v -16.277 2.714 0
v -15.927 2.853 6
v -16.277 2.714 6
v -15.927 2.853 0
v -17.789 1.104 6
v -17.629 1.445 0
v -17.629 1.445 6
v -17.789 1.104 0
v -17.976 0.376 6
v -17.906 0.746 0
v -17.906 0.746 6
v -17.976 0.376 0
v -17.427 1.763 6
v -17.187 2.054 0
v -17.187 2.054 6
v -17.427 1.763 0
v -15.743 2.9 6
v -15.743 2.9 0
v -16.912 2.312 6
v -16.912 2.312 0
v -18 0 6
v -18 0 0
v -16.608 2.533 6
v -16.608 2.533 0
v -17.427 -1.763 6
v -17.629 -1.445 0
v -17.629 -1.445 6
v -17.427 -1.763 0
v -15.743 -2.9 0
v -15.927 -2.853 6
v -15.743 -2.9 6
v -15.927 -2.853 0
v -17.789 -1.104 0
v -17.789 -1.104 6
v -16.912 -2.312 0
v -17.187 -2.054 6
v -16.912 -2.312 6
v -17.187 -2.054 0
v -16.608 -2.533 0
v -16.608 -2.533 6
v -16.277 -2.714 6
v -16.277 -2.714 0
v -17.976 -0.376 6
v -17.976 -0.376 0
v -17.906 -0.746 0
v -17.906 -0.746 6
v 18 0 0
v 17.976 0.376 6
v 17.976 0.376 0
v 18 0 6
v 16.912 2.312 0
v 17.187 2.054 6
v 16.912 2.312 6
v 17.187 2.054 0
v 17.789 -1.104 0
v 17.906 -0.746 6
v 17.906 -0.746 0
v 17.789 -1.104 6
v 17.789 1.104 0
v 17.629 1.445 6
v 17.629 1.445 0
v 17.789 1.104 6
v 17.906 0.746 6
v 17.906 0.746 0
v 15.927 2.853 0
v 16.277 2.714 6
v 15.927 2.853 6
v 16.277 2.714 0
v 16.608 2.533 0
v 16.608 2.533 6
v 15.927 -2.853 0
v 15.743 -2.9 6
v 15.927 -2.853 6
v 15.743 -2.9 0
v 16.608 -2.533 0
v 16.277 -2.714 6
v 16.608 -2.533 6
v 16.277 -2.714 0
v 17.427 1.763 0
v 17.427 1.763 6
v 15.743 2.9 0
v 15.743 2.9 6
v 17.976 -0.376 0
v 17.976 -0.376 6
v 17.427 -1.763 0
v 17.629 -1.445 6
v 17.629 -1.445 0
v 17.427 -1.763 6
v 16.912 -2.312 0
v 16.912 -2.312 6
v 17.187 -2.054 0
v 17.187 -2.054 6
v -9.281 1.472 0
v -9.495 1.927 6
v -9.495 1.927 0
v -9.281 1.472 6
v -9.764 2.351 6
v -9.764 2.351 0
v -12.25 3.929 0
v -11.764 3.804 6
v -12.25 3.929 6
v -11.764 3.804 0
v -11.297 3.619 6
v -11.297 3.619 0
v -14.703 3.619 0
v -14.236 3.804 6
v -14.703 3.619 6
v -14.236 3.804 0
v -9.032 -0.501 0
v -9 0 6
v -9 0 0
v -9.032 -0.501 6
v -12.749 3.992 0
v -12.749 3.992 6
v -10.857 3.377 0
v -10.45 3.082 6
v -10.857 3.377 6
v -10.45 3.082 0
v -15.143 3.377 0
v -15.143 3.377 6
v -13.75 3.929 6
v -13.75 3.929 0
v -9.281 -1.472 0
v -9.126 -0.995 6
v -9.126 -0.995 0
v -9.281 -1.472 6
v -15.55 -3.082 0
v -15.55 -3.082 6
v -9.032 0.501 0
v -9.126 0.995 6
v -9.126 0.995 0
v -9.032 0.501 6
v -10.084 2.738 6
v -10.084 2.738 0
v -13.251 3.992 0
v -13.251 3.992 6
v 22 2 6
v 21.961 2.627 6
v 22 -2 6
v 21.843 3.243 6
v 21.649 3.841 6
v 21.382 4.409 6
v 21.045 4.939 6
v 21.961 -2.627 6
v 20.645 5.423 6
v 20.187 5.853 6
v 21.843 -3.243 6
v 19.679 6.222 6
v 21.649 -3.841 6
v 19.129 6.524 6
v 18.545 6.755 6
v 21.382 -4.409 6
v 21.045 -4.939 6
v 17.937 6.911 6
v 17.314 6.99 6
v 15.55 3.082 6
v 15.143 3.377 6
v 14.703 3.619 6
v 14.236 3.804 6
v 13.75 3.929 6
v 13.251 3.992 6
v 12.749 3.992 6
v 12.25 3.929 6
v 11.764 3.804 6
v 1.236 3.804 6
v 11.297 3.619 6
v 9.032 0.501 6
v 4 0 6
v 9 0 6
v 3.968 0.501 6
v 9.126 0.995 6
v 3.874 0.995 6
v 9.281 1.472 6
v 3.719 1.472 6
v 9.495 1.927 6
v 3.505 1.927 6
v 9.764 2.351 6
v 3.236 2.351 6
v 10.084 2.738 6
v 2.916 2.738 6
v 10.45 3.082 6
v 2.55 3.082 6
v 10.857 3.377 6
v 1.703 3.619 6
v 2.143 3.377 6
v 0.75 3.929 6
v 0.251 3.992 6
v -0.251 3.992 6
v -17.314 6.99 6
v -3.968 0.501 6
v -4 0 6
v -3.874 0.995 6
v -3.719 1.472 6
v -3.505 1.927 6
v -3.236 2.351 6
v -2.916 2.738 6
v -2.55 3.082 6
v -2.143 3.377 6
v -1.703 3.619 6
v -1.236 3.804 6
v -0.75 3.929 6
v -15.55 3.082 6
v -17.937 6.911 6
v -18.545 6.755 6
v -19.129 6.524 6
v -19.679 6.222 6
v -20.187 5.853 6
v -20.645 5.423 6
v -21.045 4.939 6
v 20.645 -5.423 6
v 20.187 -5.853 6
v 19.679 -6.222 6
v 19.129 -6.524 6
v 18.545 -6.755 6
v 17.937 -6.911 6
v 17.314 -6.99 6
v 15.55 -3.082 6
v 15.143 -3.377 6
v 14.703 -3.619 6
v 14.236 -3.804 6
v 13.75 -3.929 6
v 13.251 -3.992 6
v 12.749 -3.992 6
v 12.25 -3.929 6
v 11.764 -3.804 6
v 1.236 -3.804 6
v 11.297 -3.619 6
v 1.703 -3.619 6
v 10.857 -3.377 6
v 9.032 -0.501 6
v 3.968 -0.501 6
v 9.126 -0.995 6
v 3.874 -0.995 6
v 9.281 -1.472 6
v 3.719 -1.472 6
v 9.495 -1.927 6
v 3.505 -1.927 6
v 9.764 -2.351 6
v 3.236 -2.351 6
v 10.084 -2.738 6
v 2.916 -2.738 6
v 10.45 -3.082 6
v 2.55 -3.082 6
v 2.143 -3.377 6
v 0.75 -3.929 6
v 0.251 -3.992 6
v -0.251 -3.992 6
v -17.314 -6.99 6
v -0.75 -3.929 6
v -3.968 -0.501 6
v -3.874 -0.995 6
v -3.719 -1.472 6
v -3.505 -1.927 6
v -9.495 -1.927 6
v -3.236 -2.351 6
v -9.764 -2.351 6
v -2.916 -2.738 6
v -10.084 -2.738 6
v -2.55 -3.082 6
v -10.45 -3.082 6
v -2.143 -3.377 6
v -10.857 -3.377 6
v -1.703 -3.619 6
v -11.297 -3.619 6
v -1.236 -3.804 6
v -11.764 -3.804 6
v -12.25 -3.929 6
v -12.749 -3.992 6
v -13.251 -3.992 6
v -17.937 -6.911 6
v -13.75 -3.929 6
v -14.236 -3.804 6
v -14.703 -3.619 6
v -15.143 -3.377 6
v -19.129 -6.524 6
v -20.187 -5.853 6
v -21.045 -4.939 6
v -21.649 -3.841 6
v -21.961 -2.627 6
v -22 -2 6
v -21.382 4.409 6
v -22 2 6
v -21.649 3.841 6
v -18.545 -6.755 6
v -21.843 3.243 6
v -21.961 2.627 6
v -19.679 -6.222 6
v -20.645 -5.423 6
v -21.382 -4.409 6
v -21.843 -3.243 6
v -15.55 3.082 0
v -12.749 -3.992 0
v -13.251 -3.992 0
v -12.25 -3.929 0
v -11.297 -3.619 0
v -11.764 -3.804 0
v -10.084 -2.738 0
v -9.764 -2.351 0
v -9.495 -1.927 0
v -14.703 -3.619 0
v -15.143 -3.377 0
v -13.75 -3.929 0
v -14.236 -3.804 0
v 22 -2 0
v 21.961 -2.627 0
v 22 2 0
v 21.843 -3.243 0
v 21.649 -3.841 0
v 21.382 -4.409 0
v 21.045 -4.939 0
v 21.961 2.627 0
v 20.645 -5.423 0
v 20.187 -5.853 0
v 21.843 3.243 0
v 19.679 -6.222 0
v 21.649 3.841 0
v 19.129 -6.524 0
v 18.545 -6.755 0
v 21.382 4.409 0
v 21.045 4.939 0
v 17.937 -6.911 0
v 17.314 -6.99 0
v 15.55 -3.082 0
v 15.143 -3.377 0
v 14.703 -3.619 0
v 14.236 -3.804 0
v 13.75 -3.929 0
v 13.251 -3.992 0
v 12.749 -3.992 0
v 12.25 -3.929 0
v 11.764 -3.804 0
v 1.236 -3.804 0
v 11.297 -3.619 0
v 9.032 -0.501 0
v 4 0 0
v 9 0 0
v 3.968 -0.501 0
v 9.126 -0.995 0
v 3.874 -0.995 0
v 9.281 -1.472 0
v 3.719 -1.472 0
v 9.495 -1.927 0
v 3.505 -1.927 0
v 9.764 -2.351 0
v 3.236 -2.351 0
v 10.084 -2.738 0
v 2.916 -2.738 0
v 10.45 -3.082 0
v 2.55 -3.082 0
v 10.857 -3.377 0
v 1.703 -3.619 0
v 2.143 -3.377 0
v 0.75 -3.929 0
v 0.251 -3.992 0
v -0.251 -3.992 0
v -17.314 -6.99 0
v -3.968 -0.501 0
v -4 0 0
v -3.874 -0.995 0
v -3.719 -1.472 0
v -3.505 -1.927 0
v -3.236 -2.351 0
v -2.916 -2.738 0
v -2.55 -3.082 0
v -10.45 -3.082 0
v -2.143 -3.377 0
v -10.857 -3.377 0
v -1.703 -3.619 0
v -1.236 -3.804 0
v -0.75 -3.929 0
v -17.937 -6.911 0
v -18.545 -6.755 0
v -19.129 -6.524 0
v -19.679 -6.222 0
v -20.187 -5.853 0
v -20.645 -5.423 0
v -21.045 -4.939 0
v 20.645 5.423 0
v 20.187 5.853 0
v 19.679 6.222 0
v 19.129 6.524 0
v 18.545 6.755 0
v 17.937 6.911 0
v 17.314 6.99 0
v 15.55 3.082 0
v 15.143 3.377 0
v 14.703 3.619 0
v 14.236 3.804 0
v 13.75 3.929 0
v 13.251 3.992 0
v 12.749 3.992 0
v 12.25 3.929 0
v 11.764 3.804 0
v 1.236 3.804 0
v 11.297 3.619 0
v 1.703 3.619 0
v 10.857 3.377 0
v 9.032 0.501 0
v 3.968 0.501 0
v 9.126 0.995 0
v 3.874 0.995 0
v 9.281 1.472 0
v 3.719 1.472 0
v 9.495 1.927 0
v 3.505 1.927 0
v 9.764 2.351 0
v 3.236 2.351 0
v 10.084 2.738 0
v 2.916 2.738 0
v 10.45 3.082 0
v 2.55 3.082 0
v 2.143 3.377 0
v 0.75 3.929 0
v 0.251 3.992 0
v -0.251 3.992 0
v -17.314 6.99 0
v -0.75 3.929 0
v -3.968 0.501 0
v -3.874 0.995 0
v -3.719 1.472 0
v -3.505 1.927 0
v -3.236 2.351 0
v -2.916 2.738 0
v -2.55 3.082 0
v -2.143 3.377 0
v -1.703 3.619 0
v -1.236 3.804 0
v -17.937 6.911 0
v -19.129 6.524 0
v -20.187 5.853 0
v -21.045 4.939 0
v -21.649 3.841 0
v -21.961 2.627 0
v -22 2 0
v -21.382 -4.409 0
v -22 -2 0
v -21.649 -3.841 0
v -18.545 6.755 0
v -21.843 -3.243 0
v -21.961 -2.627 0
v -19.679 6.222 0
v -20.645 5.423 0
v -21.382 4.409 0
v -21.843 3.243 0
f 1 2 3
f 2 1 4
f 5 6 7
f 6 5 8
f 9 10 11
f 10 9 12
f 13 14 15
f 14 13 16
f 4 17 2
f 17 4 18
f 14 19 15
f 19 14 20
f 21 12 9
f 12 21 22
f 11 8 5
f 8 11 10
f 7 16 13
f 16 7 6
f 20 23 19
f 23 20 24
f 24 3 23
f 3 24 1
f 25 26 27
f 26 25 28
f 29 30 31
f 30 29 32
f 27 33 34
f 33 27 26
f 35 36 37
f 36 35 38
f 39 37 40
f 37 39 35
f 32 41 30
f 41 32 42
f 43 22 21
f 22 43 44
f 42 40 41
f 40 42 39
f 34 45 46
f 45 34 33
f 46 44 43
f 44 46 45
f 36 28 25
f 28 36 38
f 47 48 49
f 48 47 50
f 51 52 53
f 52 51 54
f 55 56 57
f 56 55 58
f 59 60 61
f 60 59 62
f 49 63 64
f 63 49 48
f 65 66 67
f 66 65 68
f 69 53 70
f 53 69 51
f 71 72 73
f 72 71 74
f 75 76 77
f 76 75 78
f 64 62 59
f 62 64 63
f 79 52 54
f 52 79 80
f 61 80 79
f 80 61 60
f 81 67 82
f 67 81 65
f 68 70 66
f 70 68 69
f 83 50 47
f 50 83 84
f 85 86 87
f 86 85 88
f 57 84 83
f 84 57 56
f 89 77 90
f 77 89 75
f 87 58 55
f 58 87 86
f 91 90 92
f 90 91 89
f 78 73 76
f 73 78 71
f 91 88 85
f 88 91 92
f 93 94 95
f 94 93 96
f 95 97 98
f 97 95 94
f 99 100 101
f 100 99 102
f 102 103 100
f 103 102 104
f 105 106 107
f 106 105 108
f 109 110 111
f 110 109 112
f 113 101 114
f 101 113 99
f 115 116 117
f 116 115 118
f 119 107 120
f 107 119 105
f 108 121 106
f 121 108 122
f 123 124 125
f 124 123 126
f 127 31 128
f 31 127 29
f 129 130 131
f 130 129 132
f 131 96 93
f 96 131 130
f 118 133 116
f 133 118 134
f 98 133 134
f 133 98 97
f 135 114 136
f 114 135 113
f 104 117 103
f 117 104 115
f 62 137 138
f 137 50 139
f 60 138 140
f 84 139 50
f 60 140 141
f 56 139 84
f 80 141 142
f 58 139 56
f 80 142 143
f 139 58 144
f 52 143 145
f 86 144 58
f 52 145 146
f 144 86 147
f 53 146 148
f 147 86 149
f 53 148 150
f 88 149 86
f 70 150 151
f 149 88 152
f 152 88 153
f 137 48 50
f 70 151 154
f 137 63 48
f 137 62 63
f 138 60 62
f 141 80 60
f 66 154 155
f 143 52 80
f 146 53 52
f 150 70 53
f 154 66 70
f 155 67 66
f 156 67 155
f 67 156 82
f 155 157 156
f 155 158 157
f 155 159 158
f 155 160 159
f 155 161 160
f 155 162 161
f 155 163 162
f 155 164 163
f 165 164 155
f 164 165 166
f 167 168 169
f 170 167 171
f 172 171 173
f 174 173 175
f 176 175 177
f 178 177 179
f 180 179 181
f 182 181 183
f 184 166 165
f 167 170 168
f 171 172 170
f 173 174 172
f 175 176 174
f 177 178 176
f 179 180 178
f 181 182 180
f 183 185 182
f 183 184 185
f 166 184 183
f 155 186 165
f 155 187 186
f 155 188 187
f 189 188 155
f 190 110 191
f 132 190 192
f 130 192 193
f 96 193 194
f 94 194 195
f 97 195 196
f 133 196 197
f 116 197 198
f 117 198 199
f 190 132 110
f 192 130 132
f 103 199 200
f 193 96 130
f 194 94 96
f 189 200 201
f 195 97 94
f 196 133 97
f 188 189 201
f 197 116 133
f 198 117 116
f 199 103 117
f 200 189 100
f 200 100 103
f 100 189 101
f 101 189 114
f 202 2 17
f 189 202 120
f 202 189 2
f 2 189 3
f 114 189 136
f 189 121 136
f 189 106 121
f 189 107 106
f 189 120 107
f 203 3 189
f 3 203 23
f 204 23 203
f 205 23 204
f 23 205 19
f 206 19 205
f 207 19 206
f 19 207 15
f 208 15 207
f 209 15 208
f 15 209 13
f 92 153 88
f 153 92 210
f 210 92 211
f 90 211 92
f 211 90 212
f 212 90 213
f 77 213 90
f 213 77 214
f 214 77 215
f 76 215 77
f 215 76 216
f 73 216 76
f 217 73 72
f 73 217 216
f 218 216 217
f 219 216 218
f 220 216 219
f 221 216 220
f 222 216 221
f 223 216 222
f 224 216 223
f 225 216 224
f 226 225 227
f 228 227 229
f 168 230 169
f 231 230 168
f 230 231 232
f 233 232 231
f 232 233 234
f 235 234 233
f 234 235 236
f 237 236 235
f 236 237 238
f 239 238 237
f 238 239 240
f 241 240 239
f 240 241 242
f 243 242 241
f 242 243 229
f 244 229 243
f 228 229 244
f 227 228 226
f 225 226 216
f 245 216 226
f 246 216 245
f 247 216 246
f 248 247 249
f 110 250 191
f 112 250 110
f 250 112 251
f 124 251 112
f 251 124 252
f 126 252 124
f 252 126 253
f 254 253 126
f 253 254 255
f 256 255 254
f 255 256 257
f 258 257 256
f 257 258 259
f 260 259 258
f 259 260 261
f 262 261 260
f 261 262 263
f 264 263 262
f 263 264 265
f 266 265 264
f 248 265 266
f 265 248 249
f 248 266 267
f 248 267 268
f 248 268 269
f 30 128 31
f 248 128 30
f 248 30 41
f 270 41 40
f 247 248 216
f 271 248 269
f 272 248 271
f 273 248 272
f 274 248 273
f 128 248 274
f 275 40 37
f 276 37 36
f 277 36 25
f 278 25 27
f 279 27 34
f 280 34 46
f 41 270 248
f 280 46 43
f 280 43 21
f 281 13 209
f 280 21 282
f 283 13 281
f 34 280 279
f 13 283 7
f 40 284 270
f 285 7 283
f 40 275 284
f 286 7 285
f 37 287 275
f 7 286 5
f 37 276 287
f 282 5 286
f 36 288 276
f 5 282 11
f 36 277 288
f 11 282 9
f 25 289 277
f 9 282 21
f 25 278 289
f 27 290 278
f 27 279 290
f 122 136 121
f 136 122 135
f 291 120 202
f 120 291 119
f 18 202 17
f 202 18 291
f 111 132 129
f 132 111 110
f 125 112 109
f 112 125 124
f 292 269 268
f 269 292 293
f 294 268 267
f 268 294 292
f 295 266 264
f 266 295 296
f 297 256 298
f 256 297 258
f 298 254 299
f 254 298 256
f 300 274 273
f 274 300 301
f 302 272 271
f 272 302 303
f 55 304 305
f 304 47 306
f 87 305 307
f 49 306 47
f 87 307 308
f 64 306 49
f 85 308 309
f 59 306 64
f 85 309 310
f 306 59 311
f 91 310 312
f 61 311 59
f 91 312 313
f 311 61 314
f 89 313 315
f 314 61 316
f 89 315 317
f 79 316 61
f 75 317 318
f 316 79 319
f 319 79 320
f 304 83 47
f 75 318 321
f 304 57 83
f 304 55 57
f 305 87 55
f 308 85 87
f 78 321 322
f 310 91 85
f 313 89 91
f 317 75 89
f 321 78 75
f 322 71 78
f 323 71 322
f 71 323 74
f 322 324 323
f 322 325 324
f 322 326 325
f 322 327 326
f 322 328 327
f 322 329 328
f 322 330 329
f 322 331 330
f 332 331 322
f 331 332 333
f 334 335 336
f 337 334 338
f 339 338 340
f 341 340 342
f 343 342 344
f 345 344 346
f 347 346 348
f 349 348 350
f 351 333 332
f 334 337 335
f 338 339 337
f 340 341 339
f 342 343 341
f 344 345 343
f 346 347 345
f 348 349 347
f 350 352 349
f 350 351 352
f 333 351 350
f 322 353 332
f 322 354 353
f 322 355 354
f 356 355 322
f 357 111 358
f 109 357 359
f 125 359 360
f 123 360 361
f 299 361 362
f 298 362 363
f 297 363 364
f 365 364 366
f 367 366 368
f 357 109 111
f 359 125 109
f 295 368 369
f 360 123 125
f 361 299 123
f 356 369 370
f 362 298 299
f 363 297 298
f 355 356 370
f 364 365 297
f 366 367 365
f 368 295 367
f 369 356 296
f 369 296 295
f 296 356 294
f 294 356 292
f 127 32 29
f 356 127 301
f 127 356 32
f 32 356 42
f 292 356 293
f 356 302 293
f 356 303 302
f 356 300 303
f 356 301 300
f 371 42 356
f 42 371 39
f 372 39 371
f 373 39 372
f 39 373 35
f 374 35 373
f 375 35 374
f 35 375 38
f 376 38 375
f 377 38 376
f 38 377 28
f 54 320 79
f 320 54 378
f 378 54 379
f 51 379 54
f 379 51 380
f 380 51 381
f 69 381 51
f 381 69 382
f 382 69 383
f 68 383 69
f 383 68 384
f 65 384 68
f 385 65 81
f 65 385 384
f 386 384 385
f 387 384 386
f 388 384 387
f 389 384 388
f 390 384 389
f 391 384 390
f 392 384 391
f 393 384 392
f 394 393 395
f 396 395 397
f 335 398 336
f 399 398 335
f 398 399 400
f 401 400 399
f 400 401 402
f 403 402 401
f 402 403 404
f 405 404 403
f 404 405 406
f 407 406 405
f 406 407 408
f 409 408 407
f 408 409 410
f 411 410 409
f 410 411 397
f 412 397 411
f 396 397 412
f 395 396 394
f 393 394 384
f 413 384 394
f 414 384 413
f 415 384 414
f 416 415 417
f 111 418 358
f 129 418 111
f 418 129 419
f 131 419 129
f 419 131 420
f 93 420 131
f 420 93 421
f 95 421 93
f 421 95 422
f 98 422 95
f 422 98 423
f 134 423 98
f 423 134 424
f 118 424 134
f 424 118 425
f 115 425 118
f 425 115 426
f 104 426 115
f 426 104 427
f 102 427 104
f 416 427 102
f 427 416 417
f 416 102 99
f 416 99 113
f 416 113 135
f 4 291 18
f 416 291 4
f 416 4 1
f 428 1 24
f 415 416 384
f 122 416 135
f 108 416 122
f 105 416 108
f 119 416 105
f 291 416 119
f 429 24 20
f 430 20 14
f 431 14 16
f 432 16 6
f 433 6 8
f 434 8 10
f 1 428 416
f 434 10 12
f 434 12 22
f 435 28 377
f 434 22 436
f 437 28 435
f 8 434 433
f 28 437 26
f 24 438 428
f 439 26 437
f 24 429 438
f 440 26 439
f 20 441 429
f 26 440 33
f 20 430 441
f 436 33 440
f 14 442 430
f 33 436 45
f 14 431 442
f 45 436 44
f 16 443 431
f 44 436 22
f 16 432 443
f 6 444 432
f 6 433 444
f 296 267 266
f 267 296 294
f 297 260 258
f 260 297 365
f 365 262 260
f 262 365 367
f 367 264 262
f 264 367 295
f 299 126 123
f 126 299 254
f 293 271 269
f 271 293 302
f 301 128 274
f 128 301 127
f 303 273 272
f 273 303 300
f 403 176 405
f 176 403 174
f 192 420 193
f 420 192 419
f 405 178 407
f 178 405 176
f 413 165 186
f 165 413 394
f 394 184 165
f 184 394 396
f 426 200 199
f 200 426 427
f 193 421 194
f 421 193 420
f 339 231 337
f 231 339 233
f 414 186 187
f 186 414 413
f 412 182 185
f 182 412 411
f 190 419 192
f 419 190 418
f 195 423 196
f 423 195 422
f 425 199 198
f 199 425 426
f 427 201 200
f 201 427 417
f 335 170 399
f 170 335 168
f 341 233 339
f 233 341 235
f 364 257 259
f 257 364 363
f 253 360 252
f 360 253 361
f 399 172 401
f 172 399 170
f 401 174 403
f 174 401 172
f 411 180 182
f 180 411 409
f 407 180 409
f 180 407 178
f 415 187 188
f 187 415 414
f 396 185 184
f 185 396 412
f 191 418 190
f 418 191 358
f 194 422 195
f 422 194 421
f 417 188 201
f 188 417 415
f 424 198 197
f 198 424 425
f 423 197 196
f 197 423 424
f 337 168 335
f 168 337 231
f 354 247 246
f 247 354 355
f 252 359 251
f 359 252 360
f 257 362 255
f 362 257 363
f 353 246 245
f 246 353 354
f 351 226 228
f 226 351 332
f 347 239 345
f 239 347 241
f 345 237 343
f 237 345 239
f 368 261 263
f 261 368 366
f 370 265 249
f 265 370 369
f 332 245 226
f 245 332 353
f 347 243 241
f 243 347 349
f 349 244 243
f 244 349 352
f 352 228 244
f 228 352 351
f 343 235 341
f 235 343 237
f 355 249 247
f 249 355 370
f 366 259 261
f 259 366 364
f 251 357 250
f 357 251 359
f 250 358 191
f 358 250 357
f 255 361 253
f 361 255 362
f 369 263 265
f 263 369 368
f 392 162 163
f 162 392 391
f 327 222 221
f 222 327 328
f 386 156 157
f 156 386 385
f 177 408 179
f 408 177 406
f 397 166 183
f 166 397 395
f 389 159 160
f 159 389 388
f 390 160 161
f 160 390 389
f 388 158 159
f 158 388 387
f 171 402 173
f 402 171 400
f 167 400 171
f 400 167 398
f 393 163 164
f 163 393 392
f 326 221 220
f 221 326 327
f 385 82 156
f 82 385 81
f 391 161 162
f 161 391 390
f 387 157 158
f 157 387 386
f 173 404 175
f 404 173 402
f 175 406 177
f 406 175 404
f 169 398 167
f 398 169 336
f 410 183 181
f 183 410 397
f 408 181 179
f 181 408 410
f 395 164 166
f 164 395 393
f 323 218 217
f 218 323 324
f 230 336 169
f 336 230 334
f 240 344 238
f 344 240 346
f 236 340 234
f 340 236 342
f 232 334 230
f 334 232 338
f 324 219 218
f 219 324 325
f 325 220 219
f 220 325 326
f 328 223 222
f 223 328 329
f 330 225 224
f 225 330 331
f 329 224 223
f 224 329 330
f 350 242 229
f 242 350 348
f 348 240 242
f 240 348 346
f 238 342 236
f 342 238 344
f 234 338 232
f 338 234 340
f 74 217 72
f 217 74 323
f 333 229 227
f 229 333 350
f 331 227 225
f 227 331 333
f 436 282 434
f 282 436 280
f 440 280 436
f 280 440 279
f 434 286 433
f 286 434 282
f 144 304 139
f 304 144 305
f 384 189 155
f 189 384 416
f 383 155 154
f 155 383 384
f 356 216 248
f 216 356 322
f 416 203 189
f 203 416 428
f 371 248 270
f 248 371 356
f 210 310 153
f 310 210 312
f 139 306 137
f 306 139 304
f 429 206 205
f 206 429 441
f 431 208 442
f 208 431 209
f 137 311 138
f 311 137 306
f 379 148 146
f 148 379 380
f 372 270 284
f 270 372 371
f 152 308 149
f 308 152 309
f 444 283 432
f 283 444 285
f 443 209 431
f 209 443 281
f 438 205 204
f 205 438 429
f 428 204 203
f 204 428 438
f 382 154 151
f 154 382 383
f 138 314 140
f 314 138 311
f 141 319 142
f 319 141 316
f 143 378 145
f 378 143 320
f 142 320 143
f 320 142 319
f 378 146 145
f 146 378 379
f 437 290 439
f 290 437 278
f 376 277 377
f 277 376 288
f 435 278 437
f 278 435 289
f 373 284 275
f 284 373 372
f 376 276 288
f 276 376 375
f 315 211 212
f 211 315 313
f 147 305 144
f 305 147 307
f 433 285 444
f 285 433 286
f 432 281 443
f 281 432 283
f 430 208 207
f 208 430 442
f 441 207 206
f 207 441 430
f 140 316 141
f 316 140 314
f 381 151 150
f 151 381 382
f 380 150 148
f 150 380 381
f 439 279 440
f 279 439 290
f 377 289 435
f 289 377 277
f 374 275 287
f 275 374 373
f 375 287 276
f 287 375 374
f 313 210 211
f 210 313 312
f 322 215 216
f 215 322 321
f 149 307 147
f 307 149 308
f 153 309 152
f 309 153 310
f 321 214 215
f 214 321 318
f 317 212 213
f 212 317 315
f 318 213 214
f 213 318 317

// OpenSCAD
$fn = 50;


difference() {
	union() {
		hull() {
			translate(v = [-17.0000000000, 2.0000000000, 0]) {
				cylinder(h = 6, r = 5);
			}
			translate(v = [17.0000000000, 2.0000000000, 0]) {
				cylinder(h = 6, r = 5);
			}
			translate(v = [-17.0000000000, -2.0000000000, 0]) {
				cylinder(h = 6, r = 5);
			}
			translate(v = [17.0000000000, -2.0000000000, 0]) {
				cylinder(h = 6, r = 5);
			}
		}
	}
	union() {
		#translate(v = [-15.0000000000, 0.0000000000, -100.0000000000]) {
			cylinder(h = 200, r = 3.0000000000);
		}
		#translate(v = [-15.0000000000, 0.0000000000, -100.0000000000]) {
			cylinder(h = 200, r = 3.0000000000);
		}
		#translate(v = [15.0000000000, 0.0000000000, -100.0000000000]) {
			cylinder(h = 200, r = 3.0000000000);
		}
		#translate(v = [15.0000000000, 0.0000000000, -100.0000000000]) {
			cylinder(h = 200, r = 3.0000000000);
		}
		#translate(v = [-13.0000000000, 0, 0]) {
			cylinder(h = 6, r = 4.0000000000);
		}
		#cylinder(h = 6, r = 4.0000000000);
		#translate(v = [13.0000000000, 0, 0]) {
			cylinder(h = 6, r = 4.0000000000);
		}
	}
}
